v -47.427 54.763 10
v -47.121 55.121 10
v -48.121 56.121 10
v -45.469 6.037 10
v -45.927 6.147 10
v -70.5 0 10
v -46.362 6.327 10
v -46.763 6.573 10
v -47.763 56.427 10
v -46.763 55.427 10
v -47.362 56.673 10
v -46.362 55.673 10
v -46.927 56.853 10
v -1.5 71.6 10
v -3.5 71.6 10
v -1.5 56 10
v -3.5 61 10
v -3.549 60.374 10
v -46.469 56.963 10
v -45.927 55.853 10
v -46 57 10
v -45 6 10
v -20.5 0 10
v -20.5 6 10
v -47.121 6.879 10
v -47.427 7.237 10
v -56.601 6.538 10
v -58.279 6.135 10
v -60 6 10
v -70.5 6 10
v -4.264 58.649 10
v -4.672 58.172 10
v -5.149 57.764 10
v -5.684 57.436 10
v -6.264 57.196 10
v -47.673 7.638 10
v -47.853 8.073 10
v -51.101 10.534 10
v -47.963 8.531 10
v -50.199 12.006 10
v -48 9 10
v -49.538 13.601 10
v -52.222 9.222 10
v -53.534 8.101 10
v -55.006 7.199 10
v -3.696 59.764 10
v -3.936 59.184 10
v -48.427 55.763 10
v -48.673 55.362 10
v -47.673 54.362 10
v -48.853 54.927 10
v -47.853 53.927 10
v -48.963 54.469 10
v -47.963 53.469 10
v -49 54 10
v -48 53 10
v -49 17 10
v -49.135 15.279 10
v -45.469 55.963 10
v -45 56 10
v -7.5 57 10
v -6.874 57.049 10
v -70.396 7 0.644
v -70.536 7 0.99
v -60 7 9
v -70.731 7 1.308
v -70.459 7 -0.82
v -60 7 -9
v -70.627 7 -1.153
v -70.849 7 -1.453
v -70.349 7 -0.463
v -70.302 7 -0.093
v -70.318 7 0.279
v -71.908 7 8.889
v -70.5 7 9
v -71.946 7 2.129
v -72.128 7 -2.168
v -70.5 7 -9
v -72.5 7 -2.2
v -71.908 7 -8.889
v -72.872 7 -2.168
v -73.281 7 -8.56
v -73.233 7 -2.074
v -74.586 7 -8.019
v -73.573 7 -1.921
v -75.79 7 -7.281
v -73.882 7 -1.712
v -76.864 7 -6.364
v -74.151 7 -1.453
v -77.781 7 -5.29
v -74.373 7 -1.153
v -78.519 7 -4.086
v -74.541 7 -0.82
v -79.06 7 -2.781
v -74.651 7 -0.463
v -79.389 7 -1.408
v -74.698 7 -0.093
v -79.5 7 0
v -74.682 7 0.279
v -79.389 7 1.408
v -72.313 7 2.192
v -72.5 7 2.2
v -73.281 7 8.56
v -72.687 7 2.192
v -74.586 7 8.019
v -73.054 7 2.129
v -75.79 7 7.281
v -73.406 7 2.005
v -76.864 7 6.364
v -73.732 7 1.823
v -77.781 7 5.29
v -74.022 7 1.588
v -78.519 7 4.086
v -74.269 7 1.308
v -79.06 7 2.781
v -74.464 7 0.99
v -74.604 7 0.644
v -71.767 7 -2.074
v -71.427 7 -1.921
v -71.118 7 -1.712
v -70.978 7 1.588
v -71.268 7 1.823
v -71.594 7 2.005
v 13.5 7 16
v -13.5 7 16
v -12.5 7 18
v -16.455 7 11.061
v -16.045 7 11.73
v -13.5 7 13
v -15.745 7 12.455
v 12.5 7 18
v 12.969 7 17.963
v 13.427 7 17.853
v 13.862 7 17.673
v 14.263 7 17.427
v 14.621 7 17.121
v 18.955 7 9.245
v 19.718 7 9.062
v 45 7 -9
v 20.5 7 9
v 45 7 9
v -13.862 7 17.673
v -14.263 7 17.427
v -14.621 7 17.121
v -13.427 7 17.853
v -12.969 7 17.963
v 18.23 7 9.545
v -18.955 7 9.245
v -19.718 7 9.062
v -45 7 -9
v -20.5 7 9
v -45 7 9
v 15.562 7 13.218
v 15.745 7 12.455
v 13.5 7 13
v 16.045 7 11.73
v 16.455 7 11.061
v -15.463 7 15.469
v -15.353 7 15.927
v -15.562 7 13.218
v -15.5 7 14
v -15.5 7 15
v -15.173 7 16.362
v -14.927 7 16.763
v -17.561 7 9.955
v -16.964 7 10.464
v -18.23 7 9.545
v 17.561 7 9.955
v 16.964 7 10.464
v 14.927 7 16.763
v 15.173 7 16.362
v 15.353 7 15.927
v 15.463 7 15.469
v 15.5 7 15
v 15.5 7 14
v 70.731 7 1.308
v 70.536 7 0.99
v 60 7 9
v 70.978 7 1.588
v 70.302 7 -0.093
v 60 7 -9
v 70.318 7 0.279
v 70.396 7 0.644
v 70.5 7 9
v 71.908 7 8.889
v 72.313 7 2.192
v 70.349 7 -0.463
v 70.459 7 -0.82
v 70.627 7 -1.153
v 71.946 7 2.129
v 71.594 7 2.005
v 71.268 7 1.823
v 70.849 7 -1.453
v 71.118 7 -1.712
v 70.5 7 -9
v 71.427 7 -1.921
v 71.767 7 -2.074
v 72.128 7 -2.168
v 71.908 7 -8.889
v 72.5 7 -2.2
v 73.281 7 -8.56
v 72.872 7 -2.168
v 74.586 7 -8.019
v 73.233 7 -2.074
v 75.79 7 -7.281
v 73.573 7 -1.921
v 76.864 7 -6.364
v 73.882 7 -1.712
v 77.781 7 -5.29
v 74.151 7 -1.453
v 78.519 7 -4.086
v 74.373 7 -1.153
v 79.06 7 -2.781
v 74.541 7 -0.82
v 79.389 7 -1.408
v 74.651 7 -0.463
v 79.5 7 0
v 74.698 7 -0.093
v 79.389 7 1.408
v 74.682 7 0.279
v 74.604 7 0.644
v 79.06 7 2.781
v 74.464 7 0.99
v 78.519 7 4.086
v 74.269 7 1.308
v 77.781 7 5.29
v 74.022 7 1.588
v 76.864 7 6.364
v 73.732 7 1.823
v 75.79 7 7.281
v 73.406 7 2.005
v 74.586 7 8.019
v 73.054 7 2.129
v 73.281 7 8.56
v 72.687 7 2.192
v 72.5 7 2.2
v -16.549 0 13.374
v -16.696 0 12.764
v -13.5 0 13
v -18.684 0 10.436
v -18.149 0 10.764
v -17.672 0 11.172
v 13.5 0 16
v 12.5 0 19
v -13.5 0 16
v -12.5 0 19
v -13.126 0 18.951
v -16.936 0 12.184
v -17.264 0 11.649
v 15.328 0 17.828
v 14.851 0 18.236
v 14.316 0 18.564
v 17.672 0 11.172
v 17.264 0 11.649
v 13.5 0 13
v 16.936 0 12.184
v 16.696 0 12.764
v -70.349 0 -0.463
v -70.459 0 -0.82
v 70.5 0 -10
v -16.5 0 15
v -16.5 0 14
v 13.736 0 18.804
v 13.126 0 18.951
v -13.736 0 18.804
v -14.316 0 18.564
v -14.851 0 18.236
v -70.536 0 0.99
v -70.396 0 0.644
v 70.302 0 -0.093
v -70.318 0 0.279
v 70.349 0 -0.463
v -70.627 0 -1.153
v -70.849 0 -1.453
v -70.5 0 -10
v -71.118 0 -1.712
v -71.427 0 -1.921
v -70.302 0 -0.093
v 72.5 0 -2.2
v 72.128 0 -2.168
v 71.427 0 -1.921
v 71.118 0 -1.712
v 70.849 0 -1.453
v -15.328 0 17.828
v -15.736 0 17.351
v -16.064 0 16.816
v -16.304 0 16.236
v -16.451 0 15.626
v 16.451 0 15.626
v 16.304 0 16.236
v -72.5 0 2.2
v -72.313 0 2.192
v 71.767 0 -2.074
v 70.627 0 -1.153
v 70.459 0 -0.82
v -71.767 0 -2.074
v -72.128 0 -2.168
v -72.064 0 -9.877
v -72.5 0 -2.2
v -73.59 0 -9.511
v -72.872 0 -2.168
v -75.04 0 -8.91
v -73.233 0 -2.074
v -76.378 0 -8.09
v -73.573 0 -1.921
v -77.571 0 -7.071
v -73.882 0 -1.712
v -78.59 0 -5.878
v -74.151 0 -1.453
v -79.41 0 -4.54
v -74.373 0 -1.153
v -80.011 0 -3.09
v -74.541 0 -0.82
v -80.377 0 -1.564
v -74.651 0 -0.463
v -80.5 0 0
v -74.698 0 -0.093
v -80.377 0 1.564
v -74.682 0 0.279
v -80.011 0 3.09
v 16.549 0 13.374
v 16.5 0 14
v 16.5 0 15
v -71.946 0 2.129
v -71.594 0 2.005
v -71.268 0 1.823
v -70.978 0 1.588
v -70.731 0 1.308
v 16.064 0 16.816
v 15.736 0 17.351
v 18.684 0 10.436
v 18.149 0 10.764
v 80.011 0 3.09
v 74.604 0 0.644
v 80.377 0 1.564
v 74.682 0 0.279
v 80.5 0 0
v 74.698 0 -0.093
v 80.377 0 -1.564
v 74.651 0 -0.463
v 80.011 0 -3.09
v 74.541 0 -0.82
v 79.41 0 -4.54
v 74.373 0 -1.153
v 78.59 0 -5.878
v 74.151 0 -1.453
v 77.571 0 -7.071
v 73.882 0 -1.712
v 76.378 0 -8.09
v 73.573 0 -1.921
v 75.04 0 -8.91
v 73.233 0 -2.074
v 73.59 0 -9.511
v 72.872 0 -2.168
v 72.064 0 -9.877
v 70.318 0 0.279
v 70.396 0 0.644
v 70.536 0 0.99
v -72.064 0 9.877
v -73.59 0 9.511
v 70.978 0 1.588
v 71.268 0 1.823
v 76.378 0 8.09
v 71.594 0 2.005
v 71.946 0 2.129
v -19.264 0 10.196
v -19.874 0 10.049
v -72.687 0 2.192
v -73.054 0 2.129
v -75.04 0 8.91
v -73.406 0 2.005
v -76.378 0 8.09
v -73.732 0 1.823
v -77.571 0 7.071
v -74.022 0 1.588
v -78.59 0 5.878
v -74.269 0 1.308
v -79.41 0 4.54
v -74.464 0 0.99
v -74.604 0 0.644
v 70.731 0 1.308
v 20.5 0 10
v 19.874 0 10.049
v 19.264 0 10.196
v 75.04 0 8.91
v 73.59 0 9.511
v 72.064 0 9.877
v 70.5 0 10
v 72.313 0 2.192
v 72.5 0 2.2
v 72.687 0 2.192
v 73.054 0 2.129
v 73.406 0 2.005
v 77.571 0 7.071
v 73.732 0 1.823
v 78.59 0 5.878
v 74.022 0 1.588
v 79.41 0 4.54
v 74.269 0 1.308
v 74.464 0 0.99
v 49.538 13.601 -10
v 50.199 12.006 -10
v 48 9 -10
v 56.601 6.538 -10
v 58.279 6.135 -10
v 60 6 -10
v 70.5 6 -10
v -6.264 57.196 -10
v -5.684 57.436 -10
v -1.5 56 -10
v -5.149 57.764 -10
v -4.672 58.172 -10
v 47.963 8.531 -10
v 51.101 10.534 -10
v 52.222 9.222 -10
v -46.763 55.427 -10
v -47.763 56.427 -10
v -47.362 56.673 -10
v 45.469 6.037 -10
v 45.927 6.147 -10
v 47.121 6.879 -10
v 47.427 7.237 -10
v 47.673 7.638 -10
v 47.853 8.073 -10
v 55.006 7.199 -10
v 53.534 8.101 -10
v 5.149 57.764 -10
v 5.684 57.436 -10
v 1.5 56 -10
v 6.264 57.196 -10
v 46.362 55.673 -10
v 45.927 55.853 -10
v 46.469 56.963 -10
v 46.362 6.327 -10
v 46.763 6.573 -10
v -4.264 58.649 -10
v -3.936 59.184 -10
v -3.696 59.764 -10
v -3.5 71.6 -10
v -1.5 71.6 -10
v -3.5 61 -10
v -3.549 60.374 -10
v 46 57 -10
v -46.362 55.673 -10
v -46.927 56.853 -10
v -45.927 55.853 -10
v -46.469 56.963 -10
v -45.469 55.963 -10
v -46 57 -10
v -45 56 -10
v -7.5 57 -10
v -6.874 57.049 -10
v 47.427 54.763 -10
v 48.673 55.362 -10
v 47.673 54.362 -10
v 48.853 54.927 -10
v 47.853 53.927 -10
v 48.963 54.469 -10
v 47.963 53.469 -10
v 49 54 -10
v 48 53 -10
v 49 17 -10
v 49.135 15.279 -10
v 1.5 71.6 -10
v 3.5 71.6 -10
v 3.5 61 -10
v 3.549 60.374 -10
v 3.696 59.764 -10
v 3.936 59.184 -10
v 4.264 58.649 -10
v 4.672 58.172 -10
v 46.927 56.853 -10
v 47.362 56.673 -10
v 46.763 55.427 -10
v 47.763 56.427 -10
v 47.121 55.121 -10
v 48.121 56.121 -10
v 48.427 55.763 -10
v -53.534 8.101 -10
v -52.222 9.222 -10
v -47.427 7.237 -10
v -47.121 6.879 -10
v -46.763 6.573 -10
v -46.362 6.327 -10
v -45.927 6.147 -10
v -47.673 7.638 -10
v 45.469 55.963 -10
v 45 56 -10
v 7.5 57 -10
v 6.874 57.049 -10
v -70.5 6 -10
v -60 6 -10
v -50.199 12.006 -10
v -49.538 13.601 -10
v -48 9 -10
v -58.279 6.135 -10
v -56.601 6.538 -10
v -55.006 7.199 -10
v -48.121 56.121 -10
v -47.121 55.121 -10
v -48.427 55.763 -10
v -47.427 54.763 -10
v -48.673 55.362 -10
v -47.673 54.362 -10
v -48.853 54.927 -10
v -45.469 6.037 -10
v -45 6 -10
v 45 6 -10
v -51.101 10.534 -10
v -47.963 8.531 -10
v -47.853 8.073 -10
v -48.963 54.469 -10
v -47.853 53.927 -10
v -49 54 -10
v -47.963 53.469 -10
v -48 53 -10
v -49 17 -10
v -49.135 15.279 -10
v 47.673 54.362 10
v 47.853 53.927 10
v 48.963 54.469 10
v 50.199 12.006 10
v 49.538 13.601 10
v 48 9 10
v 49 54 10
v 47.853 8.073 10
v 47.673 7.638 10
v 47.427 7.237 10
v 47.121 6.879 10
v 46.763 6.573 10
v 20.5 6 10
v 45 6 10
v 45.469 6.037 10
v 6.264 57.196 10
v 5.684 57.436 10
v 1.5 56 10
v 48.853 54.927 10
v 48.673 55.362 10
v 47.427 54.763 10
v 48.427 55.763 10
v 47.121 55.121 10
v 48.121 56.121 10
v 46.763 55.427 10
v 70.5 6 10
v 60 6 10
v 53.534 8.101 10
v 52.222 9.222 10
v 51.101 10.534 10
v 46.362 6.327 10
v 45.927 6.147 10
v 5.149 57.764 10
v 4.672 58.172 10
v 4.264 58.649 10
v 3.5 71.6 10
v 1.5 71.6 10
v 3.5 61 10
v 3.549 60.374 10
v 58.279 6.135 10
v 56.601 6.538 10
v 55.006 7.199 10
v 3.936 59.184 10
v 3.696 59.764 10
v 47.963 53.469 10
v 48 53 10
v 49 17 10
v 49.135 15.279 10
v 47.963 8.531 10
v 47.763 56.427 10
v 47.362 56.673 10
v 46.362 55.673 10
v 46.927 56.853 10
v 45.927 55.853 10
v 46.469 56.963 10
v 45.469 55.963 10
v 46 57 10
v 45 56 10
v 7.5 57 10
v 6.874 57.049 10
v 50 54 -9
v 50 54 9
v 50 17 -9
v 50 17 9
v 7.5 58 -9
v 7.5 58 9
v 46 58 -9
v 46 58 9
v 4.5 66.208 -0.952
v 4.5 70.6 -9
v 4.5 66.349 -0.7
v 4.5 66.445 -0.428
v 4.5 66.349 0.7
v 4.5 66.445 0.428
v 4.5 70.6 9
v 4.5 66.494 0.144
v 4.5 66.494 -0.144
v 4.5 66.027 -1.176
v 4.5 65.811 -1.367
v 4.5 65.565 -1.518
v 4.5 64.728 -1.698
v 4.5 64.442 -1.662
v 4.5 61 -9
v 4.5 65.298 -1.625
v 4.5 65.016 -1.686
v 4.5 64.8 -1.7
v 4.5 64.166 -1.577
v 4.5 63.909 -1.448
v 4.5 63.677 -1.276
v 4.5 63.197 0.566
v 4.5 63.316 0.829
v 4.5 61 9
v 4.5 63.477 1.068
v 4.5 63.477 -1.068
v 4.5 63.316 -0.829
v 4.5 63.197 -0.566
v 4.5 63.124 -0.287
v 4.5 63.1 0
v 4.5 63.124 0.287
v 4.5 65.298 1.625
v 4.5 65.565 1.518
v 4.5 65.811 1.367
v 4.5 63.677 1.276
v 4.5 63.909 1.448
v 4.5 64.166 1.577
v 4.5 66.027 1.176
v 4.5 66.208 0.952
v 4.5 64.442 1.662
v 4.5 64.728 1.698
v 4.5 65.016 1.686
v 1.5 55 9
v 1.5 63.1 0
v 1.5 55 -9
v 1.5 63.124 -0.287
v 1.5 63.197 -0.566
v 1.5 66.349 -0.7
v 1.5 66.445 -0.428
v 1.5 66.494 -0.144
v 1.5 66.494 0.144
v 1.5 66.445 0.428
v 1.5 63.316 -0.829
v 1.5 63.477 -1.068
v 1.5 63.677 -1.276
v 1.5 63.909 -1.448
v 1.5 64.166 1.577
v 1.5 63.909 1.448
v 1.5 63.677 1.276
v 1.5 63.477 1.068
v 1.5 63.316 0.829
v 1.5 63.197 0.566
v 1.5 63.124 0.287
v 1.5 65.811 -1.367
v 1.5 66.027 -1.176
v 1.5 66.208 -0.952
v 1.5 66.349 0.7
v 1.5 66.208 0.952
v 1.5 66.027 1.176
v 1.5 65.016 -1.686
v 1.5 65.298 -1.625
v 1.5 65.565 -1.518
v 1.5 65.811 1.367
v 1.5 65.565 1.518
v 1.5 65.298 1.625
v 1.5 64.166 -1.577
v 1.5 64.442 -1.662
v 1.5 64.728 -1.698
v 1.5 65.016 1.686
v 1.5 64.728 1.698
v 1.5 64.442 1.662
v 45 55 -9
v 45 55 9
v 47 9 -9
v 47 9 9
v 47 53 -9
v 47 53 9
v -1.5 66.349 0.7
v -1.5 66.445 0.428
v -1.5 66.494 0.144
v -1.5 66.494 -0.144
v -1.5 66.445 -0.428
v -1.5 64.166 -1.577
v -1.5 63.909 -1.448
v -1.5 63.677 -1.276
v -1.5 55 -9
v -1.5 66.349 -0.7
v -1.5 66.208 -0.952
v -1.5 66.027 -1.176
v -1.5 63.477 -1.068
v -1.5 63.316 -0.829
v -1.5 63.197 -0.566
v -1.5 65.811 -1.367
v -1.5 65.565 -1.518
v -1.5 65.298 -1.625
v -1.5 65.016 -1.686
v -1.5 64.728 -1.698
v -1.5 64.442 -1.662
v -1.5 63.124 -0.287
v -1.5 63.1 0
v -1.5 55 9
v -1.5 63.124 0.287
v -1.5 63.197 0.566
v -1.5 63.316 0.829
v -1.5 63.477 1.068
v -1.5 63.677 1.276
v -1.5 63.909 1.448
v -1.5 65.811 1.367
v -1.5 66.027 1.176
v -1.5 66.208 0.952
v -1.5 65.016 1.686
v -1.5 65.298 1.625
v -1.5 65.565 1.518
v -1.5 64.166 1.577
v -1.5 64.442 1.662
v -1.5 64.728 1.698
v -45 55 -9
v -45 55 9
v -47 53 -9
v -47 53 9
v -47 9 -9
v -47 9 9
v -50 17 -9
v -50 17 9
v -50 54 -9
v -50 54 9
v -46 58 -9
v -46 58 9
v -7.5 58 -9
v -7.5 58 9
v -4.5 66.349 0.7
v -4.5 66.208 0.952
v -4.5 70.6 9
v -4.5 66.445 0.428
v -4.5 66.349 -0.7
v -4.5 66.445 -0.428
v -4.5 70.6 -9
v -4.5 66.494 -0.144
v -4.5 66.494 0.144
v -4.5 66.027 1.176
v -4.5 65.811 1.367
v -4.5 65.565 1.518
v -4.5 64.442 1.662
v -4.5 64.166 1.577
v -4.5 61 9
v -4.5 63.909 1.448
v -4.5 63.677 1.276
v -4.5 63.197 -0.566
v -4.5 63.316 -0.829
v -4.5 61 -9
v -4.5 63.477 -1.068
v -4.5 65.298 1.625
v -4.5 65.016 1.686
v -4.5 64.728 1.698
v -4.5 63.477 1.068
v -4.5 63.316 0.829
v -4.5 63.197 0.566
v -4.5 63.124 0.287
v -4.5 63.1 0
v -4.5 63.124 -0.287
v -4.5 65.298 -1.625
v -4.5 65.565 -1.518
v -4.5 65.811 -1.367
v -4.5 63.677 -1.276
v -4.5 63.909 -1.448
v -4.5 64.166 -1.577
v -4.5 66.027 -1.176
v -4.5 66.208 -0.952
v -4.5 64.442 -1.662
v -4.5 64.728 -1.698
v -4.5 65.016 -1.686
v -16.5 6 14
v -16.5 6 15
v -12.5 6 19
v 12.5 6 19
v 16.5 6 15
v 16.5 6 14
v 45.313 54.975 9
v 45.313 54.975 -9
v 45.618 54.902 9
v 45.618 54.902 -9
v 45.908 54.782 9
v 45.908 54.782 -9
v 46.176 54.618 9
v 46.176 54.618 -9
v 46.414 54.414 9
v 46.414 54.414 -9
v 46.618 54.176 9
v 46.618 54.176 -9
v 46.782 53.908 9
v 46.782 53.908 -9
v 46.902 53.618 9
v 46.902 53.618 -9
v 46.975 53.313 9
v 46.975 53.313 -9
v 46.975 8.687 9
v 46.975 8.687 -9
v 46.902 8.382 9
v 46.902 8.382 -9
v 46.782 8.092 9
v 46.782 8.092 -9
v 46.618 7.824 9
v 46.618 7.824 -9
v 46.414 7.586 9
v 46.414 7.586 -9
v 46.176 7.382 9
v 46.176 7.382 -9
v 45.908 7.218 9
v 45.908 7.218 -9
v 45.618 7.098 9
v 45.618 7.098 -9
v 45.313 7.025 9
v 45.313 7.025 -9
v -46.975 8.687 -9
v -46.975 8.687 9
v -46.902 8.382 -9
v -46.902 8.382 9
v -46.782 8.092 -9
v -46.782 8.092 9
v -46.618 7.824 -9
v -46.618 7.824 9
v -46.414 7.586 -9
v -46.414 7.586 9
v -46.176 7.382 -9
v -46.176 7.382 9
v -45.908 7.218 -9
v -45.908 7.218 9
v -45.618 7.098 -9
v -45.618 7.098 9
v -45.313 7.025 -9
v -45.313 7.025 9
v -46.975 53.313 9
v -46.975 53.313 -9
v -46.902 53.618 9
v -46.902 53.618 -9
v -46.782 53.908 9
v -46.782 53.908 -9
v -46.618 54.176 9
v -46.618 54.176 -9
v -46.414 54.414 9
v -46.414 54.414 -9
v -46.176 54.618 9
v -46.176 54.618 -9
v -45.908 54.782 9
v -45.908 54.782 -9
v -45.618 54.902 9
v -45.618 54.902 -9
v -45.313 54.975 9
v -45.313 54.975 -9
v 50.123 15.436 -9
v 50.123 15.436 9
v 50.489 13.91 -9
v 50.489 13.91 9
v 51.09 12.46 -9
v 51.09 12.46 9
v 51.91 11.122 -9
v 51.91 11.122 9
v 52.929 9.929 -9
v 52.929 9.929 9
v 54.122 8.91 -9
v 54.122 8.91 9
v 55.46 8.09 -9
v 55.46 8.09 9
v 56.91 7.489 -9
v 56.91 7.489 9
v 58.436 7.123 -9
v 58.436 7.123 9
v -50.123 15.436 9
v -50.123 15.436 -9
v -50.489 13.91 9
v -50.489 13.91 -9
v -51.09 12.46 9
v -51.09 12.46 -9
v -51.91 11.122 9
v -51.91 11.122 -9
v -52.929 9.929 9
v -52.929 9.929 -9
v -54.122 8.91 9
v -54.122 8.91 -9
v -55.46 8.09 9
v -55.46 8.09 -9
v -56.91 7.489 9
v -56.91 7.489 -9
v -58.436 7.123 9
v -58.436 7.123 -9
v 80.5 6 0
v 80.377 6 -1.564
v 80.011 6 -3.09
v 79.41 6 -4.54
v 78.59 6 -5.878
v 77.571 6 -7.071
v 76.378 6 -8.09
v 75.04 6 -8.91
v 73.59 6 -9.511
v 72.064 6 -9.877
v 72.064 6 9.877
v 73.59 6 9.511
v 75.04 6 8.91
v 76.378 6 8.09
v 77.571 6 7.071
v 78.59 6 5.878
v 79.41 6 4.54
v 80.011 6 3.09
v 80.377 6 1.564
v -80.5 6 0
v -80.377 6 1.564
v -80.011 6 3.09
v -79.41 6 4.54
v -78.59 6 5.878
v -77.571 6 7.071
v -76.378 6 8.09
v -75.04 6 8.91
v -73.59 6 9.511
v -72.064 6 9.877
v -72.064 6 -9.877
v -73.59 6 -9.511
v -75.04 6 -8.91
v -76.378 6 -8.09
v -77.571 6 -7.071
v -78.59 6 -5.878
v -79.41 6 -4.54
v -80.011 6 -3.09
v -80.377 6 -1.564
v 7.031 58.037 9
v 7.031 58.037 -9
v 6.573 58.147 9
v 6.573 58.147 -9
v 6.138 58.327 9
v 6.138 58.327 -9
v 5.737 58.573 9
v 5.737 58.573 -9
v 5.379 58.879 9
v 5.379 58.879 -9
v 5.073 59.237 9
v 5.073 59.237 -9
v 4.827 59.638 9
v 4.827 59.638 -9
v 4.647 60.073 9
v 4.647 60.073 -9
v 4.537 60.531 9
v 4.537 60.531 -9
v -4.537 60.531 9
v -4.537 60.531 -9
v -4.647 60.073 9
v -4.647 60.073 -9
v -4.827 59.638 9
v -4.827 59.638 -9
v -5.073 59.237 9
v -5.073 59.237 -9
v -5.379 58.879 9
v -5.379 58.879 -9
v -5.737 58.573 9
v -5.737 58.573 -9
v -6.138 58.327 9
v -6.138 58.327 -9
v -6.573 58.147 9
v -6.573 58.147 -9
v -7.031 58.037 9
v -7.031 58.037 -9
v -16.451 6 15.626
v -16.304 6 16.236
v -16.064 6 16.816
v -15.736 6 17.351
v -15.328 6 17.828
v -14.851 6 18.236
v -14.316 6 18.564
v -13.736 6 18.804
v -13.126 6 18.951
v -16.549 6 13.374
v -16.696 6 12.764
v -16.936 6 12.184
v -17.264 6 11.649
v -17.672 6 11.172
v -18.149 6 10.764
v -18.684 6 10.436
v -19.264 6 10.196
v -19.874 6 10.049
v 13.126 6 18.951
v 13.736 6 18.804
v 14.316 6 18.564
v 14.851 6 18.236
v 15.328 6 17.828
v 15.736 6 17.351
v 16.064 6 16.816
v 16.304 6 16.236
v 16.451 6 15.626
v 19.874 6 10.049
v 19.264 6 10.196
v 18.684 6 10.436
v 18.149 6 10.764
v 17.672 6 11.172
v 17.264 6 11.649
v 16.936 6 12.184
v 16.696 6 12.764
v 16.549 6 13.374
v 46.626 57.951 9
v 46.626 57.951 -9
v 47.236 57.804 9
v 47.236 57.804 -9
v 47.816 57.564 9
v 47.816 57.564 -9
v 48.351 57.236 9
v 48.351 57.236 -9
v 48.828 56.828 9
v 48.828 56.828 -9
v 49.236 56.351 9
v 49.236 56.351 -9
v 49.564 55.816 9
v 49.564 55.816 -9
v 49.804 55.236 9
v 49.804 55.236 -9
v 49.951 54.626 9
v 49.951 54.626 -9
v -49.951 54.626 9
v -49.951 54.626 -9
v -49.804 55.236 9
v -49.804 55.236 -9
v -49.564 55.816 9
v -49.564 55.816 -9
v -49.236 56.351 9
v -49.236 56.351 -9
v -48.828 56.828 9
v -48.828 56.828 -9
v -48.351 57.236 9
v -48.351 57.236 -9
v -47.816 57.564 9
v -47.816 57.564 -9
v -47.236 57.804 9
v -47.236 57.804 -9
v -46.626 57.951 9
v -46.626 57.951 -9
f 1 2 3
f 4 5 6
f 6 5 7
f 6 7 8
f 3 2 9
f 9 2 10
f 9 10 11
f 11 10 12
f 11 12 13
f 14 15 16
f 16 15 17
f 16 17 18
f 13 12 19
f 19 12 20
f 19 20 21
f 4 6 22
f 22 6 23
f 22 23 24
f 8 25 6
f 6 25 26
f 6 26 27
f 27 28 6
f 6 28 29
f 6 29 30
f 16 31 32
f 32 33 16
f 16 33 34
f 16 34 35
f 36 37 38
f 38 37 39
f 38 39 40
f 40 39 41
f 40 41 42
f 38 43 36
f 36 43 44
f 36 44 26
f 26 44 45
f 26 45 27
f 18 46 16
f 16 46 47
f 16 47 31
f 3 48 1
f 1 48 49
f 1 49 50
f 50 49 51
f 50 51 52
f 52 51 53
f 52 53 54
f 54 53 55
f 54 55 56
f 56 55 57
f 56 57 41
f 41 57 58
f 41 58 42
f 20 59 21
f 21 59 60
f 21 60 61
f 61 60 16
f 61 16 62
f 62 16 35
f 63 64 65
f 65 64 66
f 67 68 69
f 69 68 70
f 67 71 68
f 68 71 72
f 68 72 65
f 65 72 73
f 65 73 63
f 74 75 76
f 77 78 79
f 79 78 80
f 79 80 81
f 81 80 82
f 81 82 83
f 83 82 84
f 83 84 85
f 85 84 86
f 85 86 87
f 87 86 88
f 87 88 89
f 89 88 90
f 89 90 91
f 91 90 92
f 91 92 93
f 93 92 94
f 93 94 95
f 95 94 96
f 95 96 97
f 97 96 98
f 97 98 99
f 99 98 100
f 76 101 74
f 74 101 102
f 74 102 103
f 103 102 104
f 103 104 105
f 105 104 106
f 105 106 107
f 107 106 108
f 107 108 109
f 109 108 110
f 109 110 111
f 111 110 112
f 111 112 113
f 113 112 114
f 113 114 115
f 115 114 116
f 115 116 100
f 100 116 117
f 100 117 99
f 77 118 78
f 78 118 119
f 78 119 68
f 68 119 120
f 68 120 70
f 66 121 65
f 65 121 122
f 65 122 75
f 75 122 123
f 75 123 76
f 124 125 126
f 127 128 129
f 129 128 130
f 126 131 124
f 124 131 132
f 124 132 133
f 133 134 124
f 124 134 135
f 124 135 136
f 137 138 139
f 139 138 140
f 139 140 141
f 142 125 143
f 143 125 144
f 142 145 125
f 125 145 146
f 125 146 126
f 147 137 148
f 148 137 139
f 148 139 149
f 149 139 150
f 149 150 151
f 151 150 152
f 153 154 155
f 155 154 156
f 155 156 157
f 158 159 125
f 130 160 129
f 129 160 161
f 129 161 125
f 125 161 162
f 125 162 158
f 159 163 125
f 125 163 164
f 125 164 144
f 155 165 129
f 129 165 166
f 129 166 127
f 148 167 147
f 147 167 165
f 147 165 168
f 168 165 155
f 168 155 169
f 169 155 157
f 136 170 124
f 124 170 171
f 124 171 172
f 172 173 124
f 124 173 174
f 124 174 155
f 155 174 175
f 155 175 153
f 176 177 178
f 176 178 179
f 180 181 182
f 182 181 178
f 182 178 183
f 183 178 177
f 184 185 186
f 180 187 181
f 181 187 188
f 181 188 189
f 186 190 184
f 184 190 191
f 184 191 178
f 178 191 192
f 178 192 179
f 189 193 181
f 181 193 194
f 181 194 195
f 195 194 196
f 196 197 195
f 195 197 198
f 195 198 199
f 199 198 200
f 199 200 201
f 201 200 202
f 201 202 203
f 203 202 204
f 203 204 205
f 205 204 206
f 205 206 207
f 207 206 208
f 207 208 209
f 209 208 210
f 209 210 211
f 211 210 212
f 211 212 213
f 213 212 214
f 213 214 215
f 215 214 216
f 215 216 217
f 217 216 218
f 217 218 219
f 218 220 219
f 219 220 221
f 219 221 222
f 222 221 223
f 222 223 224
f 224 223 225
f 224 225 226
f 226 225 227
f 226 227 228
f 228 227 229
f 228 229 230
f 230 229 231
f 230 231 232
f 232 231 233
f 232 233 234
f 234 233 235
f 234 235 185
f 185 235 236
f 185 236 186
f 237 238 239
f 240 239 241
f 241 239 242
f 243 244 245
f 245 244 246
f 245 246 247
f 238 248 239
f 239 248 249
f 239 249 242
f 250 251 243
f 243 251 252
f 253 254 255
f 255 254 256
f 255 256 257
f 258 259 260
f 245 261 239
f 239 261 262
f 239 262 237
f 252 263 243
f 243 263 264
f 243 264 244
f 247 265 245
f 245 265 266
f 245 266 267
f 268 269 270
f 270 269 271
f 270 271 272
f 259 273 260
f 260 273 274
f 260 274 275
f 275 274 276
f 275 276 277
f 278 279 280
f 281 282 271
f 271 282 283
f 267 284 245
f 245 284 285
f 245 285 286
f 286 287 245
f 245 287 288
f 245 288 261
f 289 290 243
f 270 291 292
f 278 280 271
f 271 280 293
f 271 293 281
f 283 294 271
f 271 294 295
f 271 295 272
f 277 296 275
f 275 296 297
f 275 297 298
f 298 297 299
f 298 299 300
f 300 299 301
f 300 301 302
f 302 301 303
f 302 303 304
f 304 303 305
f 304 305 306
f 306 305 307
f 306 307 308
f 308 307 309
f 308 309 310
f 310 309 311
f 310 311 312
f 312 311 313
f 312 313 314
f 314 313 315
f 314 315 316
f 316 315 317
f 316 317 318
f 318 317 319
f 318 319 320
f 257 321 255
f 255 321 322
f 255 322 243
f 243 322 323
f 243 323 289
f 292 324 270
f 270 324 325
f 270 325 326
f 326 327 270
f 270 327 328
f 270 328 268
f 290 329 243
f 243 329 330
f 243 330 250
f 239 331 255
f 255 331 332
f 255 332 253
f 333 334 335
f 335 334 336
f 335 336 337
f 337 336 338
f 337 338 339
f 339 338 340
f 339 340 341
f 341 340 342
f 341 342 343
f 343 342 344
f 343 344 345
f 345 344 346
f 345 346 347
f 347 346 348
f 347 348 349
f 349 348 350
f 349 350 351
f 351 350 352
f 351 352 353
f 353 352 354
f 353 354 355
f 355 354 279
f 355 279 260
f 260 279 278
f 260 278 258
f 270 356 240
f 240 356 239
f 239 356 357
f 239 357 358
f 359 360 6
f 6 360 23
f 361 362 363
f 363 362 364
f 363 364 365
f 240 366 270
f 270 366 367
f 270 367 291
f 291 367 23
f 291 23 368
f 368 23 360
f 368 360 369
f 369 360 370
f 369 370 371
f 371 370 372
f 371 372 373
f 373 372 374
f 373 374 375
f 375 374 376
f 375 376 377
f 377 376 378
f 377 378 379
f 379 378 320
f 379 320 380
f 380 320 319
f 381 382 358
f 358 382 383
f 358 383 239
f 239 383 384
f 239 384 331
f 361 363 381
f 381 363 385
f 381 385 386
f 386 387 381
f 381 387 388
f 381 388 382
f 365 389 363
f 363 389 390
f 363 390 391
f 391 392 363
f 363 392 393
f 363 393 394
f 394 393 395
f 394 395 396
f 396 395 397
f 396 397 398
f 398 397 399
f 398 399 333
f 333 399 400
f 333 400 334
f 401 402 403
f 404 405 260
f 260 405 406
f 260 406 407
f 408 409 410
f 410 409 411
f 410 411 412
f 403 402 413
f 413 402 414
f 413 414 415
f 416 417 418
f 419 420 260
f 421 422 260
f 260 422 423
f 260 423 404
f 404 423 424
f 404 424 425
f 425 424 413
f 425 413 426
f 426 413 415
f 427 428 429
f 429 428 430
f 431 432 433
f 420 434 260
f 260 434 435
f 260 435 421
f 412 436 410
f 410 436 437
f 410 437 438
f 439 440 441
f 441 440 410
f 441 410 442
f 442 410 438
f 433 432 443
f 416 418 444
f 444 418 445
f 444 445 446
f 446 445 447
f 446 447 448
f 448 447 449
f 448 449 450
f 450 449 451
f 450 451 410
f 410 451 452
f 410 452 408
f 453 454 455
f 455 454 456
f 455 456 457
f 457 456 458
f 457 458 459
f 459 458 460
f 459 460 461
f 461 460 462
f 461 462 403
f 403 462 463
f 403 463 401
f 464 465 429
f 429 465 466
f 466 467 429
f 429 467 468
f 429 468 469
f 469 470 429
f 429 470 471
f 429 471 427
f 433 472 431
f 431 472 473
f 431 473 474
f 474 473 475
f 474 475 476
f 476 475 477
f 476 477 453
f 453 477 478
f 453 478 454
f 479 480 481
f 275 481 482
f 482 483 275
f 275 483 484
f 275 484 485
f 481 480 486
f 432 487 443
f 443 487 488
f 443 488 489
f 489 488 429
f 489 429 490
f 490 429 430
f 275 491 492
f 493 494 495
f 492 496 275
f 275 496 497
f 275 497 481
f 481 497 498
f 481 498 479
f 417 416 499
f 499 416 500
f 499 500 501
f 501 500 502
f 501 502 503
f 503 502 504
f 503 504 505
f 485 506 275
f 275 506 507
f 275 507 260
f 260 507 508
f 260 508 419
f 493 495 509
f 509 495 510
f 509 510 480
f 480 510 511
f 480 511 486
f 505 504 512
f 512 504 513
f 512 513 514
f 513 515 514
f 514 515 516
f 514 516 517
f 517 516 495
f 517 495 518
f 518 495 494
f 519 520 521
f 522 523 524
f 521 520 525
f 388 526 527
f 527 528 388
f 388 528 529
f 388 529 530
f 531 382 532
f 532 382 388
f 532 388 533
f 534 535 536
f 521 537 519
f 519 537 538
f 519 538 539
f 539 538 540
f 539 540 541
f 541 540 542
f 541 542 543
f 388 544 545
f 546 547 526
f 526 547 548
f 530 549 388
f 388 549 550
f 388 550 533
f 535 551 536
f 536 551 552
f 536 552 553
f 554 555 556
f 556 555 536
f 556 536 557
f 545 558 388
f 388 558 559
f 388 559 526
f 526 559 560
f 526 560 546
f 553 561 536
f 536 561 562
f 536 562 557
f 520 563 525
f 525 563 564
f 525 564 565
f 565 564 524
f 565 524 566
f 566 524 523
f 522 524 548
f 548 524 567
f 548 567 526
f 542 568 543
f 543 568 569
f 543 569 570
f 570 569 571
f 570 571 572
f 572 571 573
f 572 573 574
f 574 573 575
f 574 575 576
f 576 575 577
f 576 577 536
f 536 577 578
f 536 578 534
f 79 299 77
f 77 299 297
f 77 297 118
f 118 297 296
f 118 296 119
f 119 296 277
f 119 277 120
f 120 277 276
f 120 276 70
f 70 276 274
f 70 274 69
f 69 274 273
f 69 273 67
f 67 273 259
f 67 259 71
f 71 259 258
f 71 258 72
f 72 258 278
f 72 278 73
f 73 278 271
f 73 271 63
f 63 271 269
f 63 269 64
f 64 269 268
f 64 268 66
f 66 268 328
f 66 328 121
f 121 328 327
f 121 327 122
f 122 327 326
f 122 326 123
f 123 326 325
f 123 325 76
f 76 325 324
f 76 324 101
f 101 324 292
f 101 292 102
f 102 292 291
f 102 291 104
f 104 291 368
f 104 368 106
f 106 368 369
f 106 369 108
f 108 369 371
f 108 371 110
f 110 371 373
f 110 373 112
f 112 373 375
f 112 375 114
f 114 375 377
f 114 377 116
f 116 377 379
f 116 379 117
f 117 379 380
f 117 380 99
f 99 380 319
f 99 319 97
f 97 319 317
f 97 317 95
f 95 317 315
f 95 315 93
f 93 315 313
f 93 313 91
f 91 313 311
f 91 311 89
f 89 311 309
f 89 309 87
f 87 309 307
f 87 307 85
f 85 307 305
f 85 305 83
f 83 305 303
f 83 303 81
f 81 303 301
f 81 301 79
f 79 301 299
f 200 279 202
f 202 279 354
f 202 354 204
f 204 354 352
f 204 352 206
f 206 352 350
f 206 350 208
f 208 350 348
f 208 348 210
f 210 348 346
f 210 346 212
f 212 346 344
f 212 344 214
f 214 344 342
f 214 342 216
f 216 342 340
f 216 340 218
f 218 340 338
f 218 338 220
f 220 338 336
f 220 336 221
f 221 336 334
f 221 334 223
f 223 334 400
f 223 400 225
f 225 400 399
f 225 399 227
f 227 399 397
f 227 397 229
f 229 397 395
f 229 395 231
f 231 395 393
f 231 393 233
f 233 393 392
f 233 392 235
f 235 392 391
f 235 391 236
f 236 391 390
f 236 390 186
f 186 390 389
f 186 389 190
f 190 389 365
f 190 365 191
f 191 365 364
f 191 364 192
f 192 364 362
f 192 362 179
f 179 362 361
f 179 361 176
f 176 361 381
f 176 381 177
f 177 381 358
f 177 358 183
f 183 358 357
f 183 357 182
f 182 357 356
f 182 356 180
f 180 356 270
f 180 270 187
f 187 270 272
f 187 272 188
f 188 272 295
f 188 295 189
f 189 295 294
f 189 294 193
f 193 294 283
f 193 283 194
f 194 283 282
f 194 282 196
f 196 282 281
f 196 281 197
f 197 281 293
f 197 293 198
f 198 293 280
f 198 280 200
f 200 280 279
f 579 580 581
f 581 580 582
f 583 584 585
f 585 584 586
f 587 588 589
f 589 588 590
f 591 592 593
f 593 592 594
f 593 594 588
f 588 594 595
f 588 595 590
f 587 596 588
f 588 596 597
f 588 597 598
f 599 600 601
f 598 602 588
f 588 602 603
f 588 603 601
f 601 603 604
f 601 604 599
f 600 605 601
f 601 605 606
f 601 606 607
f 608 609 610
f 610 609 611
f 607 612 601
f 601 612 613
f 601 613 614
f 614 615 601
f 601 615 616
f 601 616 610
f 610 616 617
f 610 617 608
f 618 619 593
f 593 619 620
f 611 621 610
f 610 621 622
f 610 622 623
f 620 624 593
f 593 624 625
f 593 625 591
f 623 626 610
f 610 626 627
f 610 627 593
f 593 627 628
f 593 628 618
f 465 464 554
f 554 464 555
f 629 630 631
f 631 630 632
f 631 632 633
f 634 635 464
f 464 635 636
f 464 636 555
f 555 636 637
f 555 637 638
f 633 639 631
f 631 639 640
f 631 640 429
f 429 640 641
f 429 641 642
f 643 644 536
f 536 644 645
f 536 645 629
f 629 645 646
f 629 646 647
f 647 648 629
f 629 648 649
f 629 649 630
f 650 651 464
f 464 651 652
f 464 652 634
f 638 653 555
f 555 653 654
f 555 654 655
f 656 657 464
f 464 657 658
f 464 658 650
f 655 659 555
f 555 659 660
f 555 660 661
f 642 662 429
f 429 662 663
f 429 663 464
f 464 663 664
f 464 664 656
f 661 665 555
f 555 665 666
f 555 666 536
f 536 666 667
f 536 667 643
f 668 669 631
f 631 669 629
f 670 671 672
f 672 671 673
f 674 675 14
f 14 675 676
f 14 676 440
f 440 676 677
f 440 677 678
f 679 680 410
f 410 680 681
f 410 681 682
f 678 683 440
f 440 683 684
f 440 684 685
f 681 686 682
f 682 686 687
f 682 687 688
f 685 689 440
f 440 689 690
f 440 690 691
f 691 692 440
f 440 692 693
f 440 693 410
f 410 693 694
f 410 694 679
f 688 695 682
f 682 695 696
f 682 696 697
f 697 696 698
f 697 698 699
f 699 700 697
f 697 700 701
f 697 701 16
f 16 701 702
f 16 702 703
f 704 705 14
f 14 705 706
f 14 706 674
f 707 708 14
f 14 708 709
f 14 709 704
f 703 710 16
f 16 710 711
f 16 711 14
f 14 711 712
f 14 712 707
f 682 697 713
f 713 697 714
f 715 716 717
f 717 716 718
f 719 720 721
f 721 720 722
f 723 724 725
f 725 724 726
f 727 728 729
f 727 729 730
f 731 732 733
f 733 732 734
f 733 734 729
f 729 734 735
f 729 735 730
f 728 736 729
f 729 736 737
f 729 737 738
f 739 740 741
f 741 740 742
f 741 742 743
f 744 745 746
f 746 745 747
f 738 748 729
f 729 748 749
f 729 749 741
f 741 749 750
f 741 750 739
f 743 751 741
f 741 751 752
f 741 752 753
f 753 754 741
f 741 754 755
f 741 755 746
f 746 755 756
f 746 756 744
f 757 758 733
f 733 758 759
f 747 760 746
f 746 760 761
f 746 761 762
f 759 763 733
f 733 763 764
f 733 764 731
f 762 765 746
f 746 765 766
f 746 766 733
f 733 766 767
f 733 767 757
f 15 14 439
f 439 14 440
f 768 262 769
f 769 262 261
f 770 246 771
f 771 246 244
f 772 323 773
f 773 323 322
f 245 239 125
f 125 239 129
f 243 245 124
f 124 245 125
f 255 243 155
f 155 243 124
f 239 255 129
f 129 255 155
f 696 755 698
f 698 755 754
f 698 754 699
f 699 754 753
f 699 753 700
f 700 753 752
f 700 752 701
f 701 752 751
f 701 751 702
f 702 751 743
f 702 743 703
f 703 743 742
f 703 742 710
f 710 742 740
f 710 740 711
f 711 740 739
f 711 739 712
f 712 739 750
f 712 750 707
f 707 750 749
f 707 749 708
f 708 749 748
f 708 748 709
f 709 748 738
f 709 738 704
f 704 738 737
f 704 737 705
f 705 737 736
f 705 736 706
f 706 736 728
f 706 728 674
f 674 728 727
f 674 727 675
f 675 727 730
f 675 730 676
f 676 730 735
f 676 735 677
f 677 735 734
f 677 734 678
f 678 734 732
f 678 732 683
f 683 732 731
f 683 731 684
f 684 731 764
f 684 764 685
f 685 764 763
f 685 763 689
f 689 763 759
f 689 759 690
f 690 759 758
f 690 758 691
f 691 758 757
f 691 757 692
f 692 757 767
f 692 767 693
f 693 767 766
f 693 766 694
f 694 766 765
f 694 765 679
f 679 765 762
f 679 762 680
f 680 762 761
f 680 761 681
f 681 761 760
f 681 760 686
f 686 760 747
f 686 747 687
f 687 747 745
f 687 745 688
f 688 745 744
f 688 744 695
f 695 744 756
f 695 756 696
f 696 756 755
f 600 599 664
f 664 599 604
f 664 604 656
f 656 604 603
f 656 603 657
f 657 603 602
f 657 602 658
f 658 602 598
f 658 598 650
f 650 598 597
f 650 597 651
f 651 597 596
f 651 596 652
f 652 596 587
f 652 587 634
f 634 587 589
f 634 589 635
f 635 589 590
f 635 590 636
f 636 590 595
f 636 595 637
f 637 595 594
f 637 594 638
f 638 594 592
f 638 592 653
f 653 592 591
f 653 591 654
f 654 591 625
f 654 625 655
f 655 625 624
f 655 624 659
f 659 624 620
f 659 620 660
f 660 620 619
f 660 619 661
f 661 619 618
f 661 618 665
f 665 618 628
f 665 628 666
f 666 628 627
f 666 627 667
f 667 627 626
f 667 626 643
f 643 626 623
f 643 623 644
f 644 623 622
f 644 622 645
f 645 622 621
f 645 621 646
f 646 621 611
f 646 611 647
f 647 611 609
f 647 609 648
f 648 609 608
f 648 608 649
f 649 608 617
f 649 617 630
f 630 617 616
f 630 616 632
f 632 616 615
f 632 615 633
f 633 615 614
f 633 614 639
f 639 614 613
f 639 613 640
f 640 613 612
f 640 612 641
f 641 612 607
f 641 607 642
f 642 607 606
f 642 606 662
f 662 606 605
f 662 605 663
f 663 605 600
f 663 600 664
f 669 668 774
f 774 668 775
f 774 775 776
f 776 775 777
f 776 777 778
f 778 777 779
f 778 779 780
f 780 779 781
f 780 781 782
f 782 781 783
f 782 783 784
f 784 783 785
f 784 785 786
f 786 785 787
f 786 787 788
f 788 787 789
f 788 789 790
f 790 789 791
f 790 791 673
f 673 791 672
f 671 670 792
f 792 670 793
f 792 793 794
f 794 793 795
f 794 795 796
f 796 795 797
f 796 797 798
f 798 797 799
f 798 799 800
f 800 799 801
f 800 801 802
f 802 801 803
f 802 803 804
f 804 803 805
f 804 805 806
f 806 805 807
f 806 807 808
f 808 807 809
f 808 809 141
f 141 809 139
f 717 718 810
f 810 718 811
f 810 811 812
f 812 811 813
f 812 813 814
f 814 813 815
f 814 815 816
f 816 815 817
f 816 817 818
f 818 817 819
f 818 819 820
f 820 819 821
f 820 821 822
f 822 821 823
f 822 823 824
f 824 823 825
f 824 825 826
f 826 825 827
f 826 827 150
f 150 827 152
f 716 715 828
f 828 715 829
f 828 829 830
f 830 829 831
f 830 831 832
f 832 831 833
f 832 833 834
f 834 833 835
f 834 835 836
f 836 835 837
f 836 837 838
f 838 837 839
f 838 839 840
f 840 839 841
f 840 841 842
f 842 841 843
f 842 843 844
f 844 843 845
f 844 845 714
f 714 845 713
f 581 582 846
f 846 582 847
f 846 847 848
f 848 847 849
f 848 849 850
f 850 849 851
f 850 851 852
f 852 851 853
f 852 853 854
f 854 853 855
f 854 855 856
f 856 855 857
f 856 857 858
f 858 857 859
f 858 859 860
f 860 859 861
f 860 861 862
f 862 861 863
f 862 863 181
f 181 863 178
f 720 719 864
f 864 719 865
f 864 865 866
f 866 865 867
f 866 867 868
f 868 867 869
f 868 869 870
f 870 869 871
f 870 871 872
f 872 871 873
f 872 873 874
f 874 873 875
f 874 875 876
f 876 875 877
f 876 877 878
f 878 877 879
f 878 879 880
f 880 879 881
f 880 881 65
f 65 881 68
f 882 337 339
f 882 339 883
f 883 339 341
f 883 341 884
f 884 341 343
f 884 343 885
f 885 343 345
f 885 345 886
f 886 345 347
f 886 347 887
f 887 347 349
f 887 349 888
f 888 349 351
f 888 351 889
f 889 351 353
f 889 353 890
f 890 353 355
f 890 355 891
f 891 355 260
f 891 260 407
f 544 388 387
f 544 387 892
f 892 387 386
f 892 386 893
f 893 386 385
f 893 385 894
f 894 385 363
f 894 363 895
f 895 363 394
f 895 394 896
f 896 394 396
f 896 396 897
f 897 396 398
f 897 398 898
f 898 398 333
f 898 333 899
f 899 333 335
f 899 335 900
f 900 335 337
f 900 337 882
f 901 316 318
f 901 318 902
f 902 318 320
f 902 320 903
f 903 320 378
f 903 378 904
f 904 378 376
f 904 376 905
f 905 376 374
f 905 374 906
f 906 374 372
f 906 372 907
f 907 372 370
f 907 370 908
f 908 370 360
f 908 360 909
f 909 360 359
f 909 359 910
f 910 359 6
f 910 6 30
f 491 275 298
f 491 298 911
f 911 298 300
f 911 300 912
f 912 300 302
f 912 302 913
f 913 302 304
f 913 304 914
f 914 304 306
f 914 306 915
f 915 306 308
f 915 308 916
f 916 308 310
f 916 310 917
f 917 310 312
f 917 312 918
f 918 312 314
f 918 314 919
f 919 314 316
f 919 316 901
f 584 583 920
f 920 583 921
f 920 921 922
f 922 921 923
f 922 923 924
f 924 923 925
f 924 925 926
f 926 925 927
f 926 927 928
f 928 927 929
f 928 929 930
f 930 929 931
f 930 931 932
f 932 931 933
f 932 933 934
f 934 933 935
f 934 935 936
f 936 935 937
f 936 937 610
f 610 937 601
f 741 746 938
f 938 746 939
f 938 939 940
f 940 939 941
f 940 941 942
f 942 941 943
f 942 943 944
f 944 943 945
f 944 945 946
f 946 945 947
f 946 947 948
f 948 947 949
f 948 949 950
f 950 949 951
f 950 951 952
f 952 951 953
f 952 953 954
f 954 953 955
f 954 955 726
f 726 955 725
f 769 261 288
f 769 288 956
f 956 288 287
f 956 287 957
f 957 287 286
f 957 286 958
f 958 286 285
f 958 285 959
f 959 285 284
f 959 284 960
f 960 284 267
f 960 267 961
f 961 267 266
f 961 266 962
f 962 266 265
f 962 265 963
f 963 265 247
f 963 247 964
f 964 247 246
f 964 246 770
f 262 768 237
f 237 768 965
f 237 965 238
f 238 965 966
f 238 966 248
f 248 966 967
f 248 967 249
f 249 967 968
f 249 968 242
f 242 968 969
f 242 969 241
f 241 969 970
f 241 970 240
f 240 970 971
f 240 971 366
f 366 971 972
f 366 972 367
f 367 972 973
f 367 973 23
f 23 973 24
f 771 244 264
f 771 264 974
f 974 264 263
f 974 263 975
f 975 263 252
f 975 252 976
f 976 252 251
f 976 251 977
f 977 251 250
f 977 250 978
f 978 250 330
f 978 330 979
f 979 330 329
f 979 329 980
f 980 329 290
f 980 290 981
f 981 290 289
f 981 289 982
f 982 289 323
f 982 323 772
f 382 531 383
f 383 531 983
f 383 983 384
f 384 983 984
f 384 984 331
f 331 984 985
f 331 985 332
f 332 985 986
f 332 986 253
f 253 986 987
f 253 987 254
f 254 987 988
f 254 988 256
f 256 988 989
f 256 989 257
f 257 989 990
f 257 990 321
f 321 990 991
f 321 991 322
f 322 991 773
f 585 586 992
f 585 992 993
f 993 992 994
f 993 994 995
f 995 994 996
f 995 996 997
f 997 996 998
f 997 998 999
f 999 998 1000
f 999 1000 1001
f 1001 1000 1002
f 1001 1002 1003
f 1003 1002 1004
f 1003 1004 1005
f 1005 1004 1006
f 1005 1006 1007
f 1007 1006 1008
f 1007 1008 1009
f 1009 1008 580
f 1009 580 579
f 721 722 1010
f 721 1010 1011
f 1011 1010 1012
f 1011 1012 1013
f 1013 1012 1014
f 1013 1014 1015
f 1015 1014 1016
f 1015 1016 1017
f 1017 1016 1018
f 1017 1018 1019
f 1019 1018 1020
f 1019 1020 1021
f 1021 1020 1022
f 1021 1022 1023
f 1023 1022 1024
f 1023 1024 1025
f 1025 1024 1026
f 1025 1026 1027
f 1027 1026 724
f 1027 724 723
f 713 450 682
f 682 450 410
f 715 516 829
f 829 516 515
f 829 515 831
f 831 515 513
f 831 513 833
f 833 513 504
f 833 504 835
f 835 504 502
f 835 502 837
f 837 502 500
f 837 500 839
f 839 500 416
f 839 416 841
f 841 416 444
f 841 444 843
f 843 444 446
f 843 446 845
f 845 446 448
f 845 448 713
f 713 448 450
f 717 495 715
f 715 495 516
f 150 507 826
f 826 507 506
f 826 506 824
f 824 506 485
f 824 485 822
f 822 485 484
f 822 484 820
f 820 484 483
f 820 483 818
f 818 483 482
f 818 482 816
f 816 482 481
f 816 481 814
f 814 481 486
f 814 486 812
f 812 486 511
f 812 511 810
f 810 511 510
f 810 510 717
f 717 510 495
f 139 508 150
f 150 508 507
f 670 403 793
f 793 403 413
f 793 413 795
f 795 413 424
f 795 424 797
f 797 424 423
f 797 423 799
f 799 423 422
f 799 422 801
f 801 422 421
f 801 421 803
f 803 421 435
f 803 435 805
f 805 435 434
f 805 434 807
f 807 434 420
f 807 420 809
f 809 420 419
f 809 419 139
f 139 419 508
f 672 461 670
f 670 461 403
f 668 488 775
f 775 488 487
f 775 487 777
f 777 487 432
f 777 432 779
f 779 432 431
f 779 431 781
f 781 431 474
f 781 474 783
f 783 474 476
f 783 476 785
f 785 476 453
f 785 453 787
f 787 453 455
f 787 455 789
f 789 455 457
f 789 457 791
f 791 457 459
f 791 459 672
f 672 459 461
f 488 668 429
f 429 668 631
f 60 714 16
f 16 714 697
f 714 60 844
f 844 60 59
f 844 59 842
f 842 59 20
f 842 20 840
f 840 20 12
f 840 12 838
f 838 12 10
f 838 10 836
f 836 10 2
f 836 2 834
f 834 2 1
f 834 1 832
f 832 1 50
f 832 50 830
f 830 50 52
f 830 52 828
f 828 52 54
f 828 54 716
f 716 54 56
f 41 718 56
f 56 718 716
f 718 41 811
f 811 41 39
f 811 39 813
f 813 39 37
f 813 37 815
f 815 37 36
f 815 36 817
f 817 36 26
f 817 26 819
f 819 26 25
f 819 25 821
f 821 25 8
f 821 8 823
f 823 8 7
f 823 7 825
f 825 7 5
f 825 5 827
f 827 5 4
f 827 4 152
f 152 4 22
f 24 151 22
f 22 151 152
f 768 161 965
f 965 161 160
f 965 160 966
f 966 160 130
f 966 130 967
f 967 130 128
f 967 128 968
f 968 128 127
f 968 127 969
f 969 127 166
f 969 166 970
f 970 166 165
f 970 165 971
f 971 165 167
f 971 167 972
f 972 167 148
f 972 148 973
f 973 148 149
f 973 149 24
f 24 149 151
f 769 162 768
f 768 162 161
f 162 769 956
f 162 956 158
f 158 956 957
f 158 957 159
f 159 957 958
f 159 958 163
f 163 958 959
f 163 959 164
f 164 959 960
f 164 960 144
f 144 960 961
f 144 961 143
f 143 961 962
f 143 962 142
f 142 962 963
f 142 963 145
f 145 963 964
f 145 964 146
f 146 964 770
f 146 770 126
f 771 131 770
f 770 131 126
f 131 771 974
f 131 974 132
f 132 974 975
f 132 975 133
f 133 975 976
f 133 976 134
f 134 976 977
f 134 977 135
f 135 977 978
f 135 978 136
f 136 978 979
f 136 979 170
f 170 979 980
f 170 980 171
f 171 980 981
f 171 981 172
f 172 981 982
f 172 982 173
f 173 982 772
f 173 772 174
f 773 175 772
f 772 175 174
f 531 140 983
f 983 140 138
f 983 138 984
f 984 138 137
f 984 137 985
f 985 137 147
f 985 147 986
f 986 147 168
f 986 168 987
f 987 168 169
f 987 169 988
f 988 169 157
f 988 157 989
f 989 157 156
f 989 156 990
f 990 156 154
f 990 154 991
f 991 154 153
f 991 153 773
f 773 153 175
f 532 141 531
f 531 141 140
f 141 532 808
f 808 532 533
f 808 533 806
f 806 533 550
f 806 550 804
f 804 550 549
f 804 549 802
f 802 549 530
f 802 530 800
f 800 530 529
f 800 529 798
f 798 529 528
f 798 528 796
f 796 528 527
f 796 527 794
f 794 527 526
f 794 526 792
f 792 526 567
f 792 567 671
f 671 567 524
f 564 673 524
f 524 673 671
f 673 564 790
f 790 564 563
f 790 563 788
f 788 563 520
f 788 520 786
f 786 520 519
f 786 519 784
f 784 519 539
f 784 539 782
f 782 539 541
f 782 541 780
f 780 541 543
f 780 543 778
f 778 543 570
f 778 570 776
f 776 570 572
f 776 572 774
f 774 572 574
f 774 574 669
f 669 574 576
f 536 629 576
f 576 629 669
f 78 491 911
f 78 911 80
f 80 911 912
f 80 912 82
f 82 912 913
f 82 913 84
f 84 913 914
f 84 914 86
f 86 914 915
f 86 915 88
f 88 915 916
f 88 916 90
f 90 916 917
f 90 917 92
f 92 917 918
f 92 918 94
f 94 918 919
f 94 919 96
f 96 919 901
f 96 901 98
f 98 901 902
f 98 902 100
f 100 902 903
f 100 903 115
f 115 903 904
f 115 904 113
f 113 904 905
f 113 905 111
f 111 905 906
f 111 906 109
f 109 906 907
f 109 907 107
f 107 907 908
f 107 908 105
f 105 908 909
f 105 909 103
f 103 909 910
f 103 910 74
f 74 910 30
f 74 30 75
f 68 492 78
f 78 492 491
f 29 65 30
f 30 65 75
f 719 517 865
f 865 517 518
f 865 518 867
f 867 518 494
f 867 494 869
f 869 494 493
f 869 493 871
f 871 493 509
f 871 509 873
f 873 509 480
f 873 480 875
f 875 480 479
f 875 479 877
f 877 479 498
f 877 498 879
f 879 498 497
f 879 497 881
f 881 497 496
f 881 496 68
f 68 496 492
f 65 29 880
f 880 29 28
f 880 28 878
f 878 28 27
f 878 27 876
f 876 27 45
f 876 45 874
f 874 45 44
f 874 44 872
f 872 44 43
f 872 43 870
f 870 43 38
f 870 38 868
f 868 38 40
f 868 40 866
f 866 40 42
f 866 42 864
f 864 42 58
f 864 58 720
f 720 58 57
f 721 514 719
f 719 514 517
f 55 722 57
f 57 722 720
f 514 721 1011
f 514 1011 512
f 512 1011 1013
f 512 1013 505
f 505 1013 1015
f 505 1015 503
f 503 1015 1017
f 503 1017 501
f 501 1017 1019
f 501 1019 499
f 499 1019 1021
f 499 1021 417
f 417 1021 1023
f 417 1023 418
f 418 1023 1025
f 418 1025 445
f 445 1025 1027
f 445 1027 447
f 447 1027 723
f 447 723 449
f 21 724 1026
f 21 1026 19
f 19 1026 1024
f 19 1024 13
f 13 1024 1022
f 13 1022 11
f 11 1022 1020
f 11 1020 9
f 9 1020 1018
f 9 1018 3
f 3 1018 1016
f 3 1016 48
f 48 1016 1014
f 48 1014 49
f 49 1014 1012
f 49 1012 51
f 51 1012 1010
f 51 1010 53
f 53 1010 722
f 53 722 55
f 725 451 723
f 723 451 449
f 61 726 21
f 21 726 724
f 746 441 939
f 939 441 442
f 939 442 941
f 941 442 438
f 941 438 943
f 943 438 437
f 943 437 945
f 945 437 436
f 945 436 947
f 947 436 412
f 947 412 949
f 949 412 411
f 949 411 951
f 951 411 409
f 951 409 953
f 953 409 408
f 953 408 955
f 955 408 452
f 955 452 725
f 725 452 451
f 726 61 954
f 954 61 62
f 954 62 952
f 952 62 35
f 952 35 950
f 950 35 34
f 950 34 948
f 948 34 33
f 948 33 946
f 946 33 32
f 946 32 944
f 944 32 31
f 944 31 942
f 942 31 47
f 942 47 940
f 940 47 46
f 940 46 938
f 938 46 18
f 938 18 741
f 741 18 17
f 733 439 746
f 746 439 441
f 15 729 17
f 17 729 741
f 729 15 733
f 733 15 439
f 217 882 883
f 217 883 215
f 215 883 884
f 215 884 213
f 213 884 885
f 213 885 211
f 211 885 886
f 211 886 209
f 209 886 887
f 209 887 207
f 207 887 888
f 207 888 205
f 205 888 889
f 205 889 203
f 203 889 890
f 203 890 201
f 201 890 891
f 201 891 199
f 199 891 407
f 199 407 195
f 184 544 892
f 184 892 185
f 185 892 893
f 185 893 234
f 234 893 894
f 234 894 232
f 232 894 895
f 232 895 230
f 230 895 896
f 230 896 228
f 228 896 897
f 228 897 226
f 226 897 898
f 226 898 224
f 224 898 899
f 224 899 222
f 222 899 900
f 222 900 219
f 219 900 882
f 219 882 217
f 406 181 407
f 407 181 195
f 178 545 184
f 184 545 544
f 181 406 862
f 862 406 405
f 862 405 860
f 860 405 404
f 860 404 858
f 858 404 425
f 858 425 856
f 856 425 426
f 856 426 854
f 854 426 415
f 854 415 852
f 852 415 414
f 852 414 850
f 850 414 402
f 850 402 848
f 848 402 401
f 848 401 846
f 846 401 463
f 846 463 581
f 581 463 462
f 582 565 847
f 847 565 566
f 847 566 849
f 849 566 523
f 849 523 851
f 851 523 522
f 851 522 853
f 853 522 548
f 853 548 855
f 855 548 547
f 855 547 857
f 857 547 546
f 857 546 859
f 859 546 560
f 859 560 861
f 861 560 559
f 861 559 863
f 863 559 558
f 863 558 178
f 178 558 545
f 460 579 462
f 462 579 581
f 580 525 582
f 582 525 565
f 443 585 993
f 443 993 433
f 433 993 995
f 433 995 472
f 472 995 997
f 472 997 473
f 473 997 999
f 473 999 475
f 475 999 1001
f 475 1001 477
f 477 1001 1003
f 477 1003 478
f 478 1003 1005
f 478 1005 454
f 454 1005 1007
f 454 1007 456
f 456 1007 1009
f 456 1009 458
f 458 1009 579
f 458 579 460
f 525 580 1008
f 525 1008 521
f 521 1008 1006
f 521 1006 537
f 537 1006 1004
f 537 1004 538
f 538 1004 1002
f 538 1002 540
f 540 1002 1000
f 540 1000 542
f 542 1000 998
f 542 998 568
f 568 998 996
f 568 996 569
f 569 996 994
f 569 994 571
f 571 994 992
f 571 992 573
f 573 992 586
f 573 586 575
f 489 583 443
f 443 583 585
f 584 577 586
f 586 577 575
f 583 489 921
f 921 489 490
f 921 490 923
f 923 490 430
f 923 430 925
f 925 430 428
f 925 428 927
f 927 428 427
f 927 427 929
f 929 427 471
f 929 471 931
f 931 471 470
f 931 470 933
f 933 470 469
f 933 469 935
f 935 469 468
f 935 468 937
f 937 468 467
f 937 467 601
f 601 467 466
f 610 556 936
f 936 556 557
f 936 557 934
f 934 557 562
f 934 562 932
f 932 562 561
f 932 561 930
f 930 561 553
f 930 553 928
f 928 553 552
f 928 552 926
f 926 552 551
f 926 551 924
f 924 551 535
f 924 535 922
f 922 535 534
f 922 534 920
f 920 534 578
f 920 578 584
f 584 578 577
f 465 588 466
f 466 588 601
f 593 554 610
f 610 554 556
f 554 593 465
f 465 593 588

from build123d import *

# Parameters (mm, degrees)
SKETCH1_W           = 161
SKETCH1_H           = 20
SKETCH1_R           = 2.2
BOSS_EXTRUDE1_DEPTH = 7
BOSS_EXTRUDE2_DEPTH = 20
SKETCH4_W           = 33
SKETCH4_H           = 9
SKETCH4_W_2         = 27
SKETCH4_H_2         = 3
BOSS_EXTRUDE3_DEPTH = 7
SKETCH5_R           = 1.7
CUT_EXTRUDE1_DEPTH  = 113.749988914
FILLET1_R           = 2
FILLET2_R           = 10
FILLET3_R           = 3
FILLET4_R           = 4
FILLET5_R           = 4
CHAMFER1_SIZE       = 1


with BuildPart() as part:
    # Sketch1 → Boss-Extrude1 (new body)
    with BuildSketch(Plane(origin=(0, 0, 0), x_dir=(1, 0, 0), z_dir=(0, 1, 0))):
        Rectangle(SKETCH1_W, SKETCH1_H)
        with Locations(Location((-72.5, 0, 0), (0, 0, 270))):
            Circle(SKETCH1_R, mode=Mode.SUBTRACT)
        with Locations(Location((72.5, 0, 0), (0, 0, 270))):
            Circle(SKETCH1_R, mode=Mode.SUBTRACT)
    extrude(amount=BOSS_EXTRUDE1_DEPTH)

    # Sketch2 → Boss-Extrude2 (add)
    with BuildSketch(Plane.XY.offset(10)):
        Polygon((47, 55), (47, 7), (50, 7), (50, 58), (4.5, 58), (4.5, 71.6), (1.5, 71.6), (1.5, 55), align=None)
        Polygon((-50, 58), (-50, 7), (-47, 7), (-47, 55), (-1.5, 55), (-1.5, 71.6), (-4.5, 71.6), (-4.5, 58), align=None)
    extrude(amount=-BOSS_EXTRUDE2_DEPTH)

    # Sketch4 → Boss-Extrude3 (add)
    with BuildSketch(Plane(origin=(0, 0, 0), x_dir=(1, 0, 0), z_dir=(0, 1, 0))):
        with Locations((0, -14.5)):
            Rectangle(SKETCH4_W, SKETCH4_H)
        with Locations((0, -14.5)):
            Rectangle(SKETCH4_W_2, SKETCH4_H_2, mode=Mode.SUBTRACT)
    extrude(amount=BOSS_EXTRUDE3_DEPTH)

    # Sketch5 → Cut-Extrude1 (cut, through all)
    with BuildSketch(Plane.ZY.offset(4.5)):
        with Locations(Location((0, 64.8, 0), (0, 0, 270))):
            Circle(SKETCH5_R)
    extrude(amount=-CUT_EXTRUDE1_DEPTH, mode=Mode.SUBTRACT)

    # Fillet1
    fillet1_edges = [part.edges().sort_by_distance(p)[0] for p in [
        (47, 55, 0),
        (47, 7, 0),
        (-47, 55, 0),
        (-47, 7, 0),
    ]]
    fillet(fillet1_edges, radius=FILLET1_R)

    # Fillet2
    fillet2_edges = [part.edges().sort_by_distance(p)[0] for p in [
        (50, 7, 0),
        (-50, 7, 0),
        (80.5, 3.5, 10),
        (-80.5, 3.5, 10),
        (-80.5, 3.5, -10),
        (80.5, 3.5, -10),
    ]]
    fillet(fillet2_edges, radius=FILLET2_R - 0.0001)  # a hair under: the kernel refuses the full size

    # Fillet3
    fillet3_edges = [part.edges().sort_by_distance(p)[0] for p in [
        (4.5, 58, 0),
        (-4.5, 58, 0),
    ]]
    fillet(fillet3_edges, radius=FILLET3_R)

    # Fillet4
    fillet4_edges = [part.edges().sort_by_distance(p)[0] for p in [
        (-16.5, 3.5, 10),
        (-16.5, 3.5, 19),
        (16.5, 3.5, 19),
        (16.5, 3.5, 10),
    ]]
    fillet(fillet4_edges, radius=FILLET4_R)

    # Fillet5
    fillet5_edges = [part.edges().sort_by_distance(p)[0] for p in [
        (50, 58, 0),
        (-50, 58, 0),
    ]]
    fillet(fillet5_edges, radius=FILLET5_R)

    # Chamfer1
    chamfer1_edges = [part.edges().sort_by_distance(p)[0] for p in [
        (46.414213562, 54.414213562, 10),
        (46.414213562, 54.414213562, -10),
        (46.414213562, 7.585786438, 10),
        (46.414213562, 7.585786438, -10),
        (-46.414213562, 7.585786438, 10),
        (-46.414213562, 7.585786438, -10),
        (-46.414213562, 54.414213562, 10),
        (-46.414213562, 54.414213562, -10),
        (65.25, 7, -10),
        (65.25, 7, 10),
        (77.571097101, 7, -7.071097101),
        (77.571097101, 7, 7.071097101),
        (50, 35.49995, 10),
        (-50, 35.49995, 10),
        (-65.25, 7, -10),
        (-65.25, 7, 10),
        (-77.571097101, 7, 7.071097101),
        (-77.571097101, 7, -7.071097101),
        (52.928902899, 9.928902899, 10),
        (52.928902899, 9.928902899, -10),
        (-52.928902899, 9.928902899, 10),
        (-52.928902899, 9.928902899, -10),
        (26.75, 58, -10),
        (4.5, 66.3, 10),
        (-4.5, 66.3, 10),
        (-26.75, 58, -10),
        (5.378679656, 58.878679656, 10),
        (5.378679656, 58.878679656, -10),
        (-5.378679656, 58.878679656, 10),
        (-5.378679656, 58.878679656, -10),
        (0, 7, 19),
        (-16.5, 7, 14.5),
        (32.75, 7, 10),
        (16.5, 7, 14.5),
        (15.328427125, 7, 17.828427125),
        (-15.328427125, 7, 17.828427125),
        (-17.671572875, 7, 11.171572875),
        (17.671572875, 7, 11.171572875),
        (50, 35.49995, -10),
        (26.75, 58, 10),
        (48.828427125, 56.828427125, 10),
        (-50, 35.49995, -10),
        (-48.828427125, 56.828427125, -10),
        (48.828427125, 56.828427125, -10),
        (-26.75, 58, 10),
        (-48.828427125, 56.828427125, 10),
        (4.5, 71.6, 0),
        (23.25, 55, -10),
        (4.5, 66.3, -10),
        (-4.5, 66.3, -10),
        (-4.5, 71.6, 0),
        (-23.25, 55, -10),
        (23.25, 55, 10),
        (47, 31, -10),
        (47, 31, 10),
        (0, 7, -10),
        (-32.75, 7, 10),
        (-47, 31, -10),
        (-47, 31, 10),
        (-23.25, 55, 10),
    ]]
    chamfer(chamfer1_edges, length=CHAMFER1_SIZE)


solid = part.part
